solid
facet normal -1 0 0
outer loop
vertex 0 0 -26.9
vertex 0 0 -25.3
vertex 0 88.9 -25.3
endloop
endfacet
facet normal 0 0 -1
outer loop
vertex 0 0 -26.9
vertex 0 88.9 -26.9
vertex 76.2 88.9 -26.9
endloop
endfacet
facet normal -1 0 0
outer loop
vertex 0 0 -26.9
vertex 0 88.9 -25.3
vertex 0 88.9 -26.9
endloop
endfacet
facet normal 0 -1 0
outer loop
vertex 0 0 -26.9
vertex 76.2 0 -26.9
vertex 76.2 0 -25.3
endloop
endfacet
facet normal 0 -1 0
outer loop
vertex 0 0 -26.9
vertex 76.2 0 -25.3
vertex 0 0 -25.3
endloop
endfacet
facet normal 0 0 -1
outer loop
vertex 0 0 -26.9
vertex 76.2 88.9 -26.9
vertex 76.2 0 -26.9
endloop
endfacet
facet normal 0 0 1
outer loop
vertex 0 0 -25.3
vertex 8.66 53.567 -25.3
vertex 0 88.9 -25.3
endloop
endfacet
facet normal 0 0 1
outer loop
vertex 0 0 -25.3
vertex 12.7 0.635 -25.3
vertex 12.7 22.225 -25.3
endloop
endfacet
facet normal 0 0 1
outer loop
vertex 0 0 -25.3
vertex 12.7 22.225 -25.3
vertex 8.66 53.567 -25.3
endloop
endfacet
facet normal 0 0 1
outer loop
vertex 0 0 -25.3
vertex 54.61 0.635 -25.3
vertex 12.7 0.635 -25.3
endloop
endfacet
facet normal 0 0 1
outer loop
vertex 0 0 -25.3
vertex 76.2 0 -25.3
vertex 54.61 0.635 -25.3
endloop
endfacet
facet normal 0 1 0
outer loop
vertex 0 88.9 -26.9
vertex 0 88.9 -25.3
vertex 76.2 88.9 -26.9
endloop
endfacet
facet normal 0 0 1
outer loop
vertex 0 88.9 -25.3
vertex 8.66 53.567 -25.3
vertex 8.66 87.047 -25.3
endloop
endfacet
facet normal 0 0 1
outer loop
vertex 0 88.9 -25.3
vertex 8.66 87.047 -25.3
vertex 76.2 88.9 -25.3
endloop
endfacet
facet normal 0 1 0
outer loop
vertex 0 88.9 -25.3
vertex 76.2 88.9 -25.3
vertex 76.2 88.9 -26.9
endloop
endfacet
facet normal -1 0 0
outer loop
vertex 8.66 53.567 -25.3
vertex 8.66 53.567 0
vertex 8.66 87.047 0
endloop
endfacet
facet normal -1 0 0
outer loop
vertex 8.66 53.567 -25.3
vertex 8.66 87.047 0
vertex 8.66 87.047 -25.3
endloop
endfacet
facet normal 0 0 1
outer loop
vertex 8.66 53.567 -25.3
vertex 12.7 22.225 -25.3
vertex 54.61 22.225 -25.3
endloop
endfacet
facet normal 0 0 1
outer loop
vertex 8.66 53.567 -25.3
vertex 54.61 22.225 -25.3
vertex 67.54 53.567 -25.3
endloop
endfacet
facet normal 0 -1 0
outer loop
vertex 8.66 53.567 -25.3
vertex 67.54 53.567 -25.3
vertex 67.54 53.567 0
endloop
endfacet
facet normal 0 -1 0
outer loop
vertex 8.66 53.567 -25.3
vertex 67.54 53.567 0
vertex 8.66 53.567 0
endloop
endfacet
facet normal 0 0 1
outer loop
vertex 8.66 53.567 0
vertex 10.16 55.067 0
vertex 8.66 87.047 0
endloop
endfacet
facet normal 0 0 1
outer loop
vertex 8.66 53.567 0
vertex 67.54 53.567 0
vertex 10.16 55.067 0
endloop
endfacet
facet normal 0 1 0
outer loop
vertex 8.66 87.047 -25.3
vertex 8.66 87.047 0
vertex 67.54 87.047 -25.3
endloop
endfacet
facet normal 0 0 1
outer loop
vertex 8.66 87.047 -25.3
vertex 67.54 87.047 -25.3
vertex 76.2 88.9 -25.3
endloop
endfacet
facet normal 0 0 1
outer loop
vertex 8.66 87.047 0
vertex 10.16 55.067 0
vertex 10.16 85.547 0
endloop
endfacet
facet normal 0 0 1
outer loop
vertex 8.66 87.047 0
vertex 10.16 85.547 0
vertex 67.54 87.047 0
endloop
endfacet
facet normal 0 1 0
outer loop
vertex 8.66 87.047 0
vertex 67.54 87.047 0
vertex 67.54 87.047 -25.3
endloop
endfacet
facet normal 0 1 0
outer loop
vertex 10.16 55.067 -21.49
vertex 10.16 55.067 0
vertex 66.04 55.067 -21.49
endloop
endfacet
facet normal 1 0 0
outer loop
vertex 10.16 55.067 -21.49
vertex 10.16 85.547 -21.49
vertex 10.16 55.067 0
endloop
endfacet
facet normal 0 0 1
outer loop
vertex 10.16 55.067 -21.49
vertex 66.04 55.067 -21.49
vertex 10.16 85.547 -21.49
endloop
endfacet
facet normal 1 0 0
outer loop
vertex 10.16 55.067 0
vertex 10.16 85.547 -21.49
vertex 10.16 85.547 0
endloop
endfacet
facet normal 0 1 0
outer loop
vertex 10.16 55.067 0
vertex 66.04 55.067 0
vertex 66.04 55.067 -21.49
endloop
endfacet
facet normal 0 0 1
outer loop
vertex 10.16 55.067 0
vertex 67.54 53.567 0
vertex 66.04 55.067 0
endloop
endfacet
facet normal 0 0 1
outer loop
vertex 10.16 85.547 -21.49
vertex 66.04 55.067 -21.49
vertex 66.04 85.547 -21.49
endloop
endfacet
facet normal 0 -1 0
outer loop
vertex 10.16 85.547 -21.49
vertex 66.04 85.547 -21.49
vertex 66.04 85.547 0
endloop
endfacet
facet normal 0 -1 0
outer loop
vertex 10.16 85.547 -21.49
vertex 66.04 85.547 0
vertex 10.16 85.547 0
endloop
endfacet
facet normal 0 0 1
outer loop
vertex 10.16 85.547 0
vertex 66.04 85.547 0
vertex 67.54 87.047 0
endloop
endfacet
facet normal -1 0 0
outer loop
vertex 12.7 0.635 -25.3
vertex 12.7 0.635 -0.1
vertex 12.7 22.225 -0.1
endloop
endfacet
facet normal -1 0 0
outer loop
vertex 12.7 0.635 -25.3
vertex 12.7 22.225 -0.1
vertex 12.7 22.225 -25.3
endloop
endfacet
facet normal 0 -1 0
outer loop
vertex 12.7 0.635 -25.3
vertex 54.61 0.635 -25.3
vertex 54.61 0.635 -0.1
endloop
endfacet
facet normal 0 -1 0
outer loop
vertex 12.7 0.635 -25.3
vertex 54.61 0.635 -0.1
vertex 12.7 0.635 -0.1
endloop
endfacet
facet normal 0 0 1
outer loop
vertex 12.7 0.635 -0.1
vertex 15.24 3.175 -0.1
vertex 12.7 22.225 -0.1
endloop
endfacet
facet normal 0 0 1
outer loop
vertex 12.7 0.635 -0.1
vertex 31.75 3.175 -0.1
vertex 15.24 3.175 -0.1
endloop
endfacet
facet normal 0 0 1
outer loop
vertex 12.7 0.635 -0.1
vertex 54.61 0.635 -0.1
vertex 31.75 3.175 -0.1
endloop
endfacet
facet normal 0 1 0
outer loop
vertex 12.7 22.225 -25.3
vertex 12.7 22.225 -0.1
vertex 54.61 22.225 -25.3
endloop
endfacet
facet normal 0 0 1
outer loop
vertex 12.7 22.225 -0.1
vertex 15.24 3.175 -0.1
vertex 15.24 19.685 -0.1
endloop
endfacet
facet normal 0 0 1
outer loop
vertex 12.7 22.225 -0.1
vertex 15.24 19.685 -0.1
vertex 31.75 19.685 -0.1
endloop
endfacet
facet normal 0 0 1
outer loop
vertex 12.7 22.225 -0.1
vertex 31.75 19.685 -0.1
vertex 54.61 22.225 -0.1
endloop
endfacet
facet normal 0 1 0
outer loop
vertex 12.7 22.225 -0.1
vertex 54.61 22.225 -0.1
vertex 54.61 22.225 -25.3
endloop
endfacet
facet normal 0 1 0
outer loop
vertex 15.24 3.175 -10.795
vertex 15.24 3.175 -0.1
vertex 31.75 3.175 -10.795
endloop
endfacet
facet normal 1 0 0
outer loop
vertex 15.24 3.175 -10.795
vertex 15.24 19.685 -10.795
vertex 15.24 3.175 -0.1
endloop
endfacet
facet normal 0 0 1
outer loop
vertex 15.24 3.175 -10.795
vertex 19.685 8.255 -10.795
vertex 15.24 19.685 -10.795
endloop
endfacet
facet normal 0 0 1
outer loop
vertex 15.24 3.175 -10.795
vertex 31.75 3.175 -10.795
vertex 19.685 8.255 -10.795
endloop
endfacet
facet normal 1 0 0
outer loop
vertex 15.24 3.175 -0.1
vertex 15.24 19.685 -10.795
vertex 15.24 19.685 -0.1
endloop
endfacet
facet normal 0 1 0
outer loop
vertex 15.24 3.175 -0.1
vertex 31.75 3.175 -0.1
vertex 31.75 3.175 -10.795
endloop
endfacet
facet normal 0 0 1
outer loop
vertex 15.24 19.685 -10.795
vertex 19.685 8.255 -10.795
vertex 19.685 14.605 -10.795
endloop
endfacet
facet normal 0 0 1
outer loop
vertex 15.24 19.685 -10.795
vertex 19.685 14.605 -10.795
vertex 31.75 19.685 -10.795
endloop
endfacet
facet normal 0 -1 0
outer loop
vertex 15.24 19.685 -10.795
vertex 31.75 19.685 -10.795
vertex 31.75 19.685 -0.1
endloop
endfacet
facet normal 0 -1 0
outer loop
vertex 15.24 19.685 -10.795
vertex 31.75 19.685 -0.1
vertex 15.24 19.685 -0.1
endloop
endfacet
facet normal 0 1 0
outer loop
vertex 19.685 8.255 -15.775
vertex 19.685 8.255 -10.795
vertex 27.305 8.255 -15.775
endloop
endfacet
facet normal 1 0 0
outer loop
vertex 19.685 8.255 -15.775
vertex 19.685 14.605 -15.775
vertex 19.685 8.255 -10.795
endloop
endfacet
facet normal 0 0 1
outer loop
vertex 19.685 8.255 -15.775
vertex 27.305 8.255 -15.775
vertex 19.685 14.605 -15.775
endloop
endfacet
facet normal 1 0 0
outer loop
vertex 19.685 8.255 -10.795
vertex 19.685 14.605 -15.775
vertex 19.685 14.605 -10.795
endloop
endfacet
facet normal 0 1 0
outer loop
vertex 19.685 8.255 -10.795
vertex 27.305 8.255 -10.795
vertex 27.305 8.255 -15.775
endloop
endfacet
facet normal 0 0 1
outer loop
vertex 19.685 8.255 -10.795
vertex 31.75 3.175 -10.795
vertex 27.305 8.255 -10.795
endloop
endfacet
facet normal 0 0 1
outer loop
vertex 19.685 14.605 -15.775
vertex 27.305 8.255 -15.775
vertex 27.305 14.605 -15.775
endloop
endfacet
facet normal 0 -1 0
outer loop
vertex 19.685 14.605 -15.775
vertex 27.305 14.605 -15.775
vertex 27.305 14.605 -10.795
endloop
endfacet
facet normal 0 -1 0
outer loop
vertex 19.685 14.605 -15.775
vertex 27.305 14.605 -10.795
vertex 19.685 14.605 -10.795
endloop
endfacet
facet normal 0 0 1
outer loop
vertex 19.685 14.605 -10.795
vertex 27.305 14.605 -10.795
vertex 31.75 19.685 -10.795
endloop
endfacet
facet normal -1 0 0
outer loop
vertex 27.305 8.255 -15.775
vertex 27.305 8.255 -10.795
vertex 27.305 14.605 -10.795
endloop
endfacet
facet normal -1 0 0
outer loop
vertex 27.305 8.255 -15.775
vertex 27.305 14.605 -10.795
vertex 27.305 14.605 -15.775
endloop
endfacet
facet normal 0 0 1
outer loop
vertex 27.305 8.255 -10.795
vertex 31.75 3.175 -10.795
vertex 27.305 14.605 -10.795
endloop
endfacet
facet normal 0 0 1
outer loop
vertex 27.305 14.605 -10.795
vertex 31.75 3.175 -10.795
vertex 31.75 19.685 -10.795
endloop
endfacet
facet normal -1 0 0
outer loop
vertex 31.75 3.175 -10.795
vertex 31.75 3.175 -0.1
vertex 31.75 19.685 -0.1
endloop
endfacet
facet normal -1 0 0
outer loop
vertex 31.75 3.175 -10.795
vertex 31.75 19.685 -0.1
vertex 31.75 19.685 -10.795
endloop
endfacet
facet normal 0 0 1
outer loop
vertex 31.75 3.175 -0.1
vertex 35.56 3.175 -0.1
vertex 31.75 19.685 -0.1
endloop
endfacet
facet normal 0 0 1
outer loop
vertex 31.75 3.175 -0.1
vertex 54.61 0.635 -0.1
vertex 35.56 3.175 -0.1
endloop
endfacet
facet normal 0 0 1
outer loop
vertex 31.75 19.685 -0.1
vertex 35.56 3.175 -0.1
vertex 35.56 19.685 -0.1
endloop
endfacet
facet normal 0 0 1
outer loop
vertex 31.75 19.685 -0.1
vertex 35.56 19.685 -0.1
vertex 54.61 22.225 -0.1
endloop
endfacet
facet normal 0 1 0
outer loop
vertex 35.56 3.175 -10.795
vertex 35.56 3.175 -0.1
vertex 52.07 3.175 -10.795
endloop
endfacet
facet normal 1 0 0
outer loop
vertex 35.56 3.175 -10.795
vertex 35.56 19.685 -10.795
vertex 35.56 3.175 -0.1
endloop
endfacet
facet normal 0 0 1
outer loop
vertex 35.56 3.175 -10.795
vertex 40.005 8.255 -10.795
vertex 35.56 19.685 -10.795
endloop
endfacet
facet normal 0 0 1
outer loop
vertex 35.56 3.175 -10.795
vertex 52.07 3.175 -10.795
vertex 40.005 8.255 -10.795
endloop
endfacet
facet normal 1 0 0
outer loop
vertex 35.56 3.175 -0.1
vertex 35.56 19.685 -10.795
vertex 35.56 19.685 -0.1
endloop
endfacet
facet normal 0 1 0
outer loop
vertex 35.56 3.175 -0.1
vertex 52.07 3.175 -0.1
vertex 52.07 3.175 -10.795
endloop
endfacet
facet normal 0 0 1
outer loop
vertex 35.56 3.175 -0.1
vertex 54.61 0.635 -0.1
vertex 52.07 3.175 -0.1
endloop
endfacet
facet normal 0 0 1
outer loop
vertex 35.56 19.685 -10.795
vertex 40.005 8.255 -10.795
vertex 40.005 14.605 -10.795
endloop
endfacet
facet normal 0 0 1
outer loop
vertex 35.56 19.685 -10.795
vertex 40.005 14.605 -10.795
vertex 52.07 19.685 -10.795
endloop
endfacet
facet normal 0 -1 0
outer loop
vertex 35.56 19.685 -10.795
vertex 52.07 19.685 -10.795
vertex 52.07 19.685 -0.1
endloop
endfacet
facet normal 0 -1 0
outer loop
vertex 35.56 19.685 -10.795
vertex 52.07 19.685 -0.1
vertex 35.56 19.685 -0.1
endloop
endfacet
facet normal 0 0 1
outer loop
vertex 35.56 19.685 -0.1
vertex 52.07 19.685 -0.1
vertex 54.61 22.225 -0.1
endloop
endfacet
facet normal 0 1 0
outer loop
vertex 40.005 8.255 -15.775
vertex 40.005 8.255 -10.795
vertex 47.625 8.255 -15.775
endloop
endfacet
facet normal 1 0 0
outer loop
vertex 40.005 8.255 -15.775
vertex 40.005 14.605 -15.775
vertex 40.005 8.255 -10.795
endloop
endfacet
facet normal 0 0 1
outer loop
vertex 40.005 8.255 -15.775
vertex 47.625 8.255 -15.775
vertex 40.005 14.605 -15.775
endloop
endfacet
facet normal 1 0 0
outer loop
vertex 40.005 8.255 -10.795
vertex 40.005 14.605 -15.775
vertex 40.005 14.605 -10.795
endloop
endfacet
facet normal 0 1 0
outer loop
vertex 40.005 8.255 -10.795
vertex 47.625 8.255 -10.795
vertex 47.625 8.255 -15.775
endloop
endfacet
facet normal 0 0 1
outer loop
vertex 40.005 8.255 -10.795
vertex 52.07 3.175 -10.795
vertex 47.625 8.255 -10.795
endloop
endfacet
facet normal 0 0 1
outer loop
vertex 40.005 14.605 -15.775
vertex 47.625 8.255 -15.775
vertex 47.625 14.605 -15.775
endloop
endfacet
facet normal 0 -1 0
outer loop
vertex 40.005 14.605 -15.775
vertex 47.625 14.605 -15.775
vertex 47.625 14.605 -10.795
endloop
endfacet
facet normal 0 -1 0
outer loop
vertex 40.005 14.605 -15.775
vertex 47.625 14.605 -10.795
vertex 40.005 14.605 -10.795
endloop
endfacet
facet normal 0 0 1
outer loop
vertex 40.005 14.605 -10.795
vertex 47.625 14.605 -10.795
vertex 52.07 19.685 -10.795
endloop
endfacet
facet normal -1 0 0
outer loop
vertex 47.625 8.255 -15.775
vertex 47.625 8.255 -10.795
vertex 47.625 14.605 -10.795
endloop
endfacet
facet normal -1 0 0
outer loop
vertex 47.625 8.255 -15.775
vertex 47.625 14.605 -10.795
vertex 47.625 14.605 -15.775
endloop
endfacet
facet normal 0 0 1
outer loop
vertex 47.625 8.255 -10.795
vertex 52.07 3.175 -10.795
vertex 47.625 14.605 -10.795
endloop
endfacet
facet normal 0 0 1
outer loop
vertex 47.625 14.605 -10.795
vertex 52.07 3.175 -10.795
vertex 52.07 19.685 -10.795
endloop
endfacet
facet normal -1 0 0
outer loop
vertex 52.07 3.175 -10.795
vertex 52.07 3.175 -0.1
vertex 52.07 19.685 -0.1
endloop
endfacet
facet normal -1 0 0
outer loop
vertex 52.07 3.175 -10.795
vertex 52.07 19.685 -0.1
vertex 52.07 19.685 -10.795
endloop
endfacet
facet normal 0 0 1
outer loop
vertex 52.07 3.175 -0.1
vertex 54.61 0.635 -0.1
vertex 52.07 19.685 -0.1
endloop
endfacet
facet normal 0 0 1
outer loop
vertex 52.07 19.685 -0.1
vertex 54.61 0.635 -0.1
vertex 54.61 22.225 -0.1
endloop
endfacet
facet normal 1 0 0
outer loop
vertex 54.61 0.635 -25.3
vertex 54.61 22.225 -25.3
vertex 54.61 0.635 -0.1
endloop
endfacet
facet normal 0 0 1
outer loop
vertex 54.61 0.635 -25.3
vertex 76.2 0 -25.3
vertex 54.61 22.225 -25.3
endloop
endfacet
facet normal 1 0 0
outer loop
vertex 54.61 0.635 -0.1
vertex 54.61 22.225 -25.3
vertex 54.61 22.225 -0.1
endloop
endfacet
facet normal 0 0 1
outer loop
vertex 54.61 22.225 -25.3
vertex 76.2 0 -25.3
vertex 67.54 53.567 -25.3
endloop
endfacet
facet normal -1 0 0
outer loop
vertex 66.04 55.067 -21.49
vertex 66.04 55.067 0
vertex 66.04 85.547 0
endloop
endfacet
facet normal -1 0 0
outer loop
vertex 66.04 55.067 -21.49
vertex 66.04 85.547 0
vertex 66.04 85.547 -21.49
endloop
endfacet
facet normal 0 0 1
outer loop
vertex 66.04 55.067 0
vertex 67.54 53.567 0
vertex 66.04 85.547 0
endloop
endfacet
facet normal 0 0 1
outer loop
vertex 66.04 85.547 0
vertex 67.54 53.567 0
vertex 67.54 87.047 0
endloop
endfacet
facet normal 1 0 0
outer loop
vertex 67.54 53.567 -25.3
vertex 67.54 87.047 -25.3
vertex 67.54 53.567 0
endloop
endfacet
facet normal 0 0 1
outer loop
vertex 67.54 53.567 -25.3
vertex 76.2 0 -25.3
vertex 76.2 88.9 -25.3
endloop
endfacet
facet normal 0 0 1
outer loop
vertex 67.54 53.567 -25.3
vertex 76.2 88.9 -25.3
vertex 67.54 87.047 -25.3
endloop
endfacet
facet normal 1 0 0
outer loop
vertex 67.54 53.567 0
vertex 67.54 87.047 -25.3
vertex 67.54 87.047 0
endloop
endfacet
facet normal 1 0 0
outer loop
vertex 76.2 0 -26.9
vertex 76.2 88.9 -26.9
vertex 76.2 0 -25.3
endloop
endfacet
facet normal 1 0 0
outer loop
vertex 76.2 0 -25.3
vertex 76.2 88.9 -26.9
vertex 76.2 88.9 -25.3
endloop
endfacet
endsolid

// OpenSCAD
//
// soldering jig to hold PCB for installing switches and battery holder
//

mm = 25.4;
e = 0.1;
$fn = 64;

pcb_x = 3*mm;
pcb_y = 3.5*mm;
pcb_z = 1.6;

body_x = 0.65*mm;
body_y = 0.65*mm;
body_z = 0.425*mm;

stem_x = 0.3*mm;
stem_y = 0.25*mm;
stem_z = 0.2*mm;

sw_x = 1.65*mm;
sw_y = 0.85*mm;
sw_z = 1.0*mm;
sw_spc = 0.8*mm;

bh_x = 2.2*mm;
bh_y = 1.2*mm;
bh_z = 0.85*mm;

bh_edge = 1.5;

batt_x = bh_x+2*bh_edge;
batt_y = bh_y+2*bh_edge;
batt_z = 1.0*mm;

module body() {
     translate( [-body_x/2, -body_y/2, -body_z])
	  cube( [body_x, body_y, body_z]);
     translate( [-stem_x/2, -stem_y/2, -body_z-stem_z+e])
	  cube( [stem_x, stem_y, stem_z]);
}

module sw() {
     difference() {
	  translate( [-sw_x/2, -sw_y/2, -sw_z])
	       cube( [sw_x, sw_y, sw_z-e]);
	  translate( [-sw_spc/2, 0, 0])
	       body();
	  translate( [sw_spc/2, 0, 0])
	       body();
     }
}

module bh() {
     translate( [-bh_x/2, -bh_y/2, -bh_z])
	  cube( [bh_x, bh_y, bh_z]);
}

module batt() {
     difference() {
	  translate( [-batt_x/2, -batt_y/2, -batt_z])
	       cube( [batt_x, batt_y, batt_z]);
	  translate( [-bh_x/2, -bh_y/2, -bh_z+e])
	       cube( [bh_x, bh_y, bh_z]);
     }
}

module base() {
     translate( [0, 0, -pcb_z])
	  cube( [pcb_x, pcb_y, pcb_z]);
}

translate( [0, 0, -batt_z+e])    base();
translate( [pcb_x/2, pcb_y-0.732*mm, 0])  batt();
translate( [(0.925+0.4)*mm, 0.45*mm, 0])  sw();
